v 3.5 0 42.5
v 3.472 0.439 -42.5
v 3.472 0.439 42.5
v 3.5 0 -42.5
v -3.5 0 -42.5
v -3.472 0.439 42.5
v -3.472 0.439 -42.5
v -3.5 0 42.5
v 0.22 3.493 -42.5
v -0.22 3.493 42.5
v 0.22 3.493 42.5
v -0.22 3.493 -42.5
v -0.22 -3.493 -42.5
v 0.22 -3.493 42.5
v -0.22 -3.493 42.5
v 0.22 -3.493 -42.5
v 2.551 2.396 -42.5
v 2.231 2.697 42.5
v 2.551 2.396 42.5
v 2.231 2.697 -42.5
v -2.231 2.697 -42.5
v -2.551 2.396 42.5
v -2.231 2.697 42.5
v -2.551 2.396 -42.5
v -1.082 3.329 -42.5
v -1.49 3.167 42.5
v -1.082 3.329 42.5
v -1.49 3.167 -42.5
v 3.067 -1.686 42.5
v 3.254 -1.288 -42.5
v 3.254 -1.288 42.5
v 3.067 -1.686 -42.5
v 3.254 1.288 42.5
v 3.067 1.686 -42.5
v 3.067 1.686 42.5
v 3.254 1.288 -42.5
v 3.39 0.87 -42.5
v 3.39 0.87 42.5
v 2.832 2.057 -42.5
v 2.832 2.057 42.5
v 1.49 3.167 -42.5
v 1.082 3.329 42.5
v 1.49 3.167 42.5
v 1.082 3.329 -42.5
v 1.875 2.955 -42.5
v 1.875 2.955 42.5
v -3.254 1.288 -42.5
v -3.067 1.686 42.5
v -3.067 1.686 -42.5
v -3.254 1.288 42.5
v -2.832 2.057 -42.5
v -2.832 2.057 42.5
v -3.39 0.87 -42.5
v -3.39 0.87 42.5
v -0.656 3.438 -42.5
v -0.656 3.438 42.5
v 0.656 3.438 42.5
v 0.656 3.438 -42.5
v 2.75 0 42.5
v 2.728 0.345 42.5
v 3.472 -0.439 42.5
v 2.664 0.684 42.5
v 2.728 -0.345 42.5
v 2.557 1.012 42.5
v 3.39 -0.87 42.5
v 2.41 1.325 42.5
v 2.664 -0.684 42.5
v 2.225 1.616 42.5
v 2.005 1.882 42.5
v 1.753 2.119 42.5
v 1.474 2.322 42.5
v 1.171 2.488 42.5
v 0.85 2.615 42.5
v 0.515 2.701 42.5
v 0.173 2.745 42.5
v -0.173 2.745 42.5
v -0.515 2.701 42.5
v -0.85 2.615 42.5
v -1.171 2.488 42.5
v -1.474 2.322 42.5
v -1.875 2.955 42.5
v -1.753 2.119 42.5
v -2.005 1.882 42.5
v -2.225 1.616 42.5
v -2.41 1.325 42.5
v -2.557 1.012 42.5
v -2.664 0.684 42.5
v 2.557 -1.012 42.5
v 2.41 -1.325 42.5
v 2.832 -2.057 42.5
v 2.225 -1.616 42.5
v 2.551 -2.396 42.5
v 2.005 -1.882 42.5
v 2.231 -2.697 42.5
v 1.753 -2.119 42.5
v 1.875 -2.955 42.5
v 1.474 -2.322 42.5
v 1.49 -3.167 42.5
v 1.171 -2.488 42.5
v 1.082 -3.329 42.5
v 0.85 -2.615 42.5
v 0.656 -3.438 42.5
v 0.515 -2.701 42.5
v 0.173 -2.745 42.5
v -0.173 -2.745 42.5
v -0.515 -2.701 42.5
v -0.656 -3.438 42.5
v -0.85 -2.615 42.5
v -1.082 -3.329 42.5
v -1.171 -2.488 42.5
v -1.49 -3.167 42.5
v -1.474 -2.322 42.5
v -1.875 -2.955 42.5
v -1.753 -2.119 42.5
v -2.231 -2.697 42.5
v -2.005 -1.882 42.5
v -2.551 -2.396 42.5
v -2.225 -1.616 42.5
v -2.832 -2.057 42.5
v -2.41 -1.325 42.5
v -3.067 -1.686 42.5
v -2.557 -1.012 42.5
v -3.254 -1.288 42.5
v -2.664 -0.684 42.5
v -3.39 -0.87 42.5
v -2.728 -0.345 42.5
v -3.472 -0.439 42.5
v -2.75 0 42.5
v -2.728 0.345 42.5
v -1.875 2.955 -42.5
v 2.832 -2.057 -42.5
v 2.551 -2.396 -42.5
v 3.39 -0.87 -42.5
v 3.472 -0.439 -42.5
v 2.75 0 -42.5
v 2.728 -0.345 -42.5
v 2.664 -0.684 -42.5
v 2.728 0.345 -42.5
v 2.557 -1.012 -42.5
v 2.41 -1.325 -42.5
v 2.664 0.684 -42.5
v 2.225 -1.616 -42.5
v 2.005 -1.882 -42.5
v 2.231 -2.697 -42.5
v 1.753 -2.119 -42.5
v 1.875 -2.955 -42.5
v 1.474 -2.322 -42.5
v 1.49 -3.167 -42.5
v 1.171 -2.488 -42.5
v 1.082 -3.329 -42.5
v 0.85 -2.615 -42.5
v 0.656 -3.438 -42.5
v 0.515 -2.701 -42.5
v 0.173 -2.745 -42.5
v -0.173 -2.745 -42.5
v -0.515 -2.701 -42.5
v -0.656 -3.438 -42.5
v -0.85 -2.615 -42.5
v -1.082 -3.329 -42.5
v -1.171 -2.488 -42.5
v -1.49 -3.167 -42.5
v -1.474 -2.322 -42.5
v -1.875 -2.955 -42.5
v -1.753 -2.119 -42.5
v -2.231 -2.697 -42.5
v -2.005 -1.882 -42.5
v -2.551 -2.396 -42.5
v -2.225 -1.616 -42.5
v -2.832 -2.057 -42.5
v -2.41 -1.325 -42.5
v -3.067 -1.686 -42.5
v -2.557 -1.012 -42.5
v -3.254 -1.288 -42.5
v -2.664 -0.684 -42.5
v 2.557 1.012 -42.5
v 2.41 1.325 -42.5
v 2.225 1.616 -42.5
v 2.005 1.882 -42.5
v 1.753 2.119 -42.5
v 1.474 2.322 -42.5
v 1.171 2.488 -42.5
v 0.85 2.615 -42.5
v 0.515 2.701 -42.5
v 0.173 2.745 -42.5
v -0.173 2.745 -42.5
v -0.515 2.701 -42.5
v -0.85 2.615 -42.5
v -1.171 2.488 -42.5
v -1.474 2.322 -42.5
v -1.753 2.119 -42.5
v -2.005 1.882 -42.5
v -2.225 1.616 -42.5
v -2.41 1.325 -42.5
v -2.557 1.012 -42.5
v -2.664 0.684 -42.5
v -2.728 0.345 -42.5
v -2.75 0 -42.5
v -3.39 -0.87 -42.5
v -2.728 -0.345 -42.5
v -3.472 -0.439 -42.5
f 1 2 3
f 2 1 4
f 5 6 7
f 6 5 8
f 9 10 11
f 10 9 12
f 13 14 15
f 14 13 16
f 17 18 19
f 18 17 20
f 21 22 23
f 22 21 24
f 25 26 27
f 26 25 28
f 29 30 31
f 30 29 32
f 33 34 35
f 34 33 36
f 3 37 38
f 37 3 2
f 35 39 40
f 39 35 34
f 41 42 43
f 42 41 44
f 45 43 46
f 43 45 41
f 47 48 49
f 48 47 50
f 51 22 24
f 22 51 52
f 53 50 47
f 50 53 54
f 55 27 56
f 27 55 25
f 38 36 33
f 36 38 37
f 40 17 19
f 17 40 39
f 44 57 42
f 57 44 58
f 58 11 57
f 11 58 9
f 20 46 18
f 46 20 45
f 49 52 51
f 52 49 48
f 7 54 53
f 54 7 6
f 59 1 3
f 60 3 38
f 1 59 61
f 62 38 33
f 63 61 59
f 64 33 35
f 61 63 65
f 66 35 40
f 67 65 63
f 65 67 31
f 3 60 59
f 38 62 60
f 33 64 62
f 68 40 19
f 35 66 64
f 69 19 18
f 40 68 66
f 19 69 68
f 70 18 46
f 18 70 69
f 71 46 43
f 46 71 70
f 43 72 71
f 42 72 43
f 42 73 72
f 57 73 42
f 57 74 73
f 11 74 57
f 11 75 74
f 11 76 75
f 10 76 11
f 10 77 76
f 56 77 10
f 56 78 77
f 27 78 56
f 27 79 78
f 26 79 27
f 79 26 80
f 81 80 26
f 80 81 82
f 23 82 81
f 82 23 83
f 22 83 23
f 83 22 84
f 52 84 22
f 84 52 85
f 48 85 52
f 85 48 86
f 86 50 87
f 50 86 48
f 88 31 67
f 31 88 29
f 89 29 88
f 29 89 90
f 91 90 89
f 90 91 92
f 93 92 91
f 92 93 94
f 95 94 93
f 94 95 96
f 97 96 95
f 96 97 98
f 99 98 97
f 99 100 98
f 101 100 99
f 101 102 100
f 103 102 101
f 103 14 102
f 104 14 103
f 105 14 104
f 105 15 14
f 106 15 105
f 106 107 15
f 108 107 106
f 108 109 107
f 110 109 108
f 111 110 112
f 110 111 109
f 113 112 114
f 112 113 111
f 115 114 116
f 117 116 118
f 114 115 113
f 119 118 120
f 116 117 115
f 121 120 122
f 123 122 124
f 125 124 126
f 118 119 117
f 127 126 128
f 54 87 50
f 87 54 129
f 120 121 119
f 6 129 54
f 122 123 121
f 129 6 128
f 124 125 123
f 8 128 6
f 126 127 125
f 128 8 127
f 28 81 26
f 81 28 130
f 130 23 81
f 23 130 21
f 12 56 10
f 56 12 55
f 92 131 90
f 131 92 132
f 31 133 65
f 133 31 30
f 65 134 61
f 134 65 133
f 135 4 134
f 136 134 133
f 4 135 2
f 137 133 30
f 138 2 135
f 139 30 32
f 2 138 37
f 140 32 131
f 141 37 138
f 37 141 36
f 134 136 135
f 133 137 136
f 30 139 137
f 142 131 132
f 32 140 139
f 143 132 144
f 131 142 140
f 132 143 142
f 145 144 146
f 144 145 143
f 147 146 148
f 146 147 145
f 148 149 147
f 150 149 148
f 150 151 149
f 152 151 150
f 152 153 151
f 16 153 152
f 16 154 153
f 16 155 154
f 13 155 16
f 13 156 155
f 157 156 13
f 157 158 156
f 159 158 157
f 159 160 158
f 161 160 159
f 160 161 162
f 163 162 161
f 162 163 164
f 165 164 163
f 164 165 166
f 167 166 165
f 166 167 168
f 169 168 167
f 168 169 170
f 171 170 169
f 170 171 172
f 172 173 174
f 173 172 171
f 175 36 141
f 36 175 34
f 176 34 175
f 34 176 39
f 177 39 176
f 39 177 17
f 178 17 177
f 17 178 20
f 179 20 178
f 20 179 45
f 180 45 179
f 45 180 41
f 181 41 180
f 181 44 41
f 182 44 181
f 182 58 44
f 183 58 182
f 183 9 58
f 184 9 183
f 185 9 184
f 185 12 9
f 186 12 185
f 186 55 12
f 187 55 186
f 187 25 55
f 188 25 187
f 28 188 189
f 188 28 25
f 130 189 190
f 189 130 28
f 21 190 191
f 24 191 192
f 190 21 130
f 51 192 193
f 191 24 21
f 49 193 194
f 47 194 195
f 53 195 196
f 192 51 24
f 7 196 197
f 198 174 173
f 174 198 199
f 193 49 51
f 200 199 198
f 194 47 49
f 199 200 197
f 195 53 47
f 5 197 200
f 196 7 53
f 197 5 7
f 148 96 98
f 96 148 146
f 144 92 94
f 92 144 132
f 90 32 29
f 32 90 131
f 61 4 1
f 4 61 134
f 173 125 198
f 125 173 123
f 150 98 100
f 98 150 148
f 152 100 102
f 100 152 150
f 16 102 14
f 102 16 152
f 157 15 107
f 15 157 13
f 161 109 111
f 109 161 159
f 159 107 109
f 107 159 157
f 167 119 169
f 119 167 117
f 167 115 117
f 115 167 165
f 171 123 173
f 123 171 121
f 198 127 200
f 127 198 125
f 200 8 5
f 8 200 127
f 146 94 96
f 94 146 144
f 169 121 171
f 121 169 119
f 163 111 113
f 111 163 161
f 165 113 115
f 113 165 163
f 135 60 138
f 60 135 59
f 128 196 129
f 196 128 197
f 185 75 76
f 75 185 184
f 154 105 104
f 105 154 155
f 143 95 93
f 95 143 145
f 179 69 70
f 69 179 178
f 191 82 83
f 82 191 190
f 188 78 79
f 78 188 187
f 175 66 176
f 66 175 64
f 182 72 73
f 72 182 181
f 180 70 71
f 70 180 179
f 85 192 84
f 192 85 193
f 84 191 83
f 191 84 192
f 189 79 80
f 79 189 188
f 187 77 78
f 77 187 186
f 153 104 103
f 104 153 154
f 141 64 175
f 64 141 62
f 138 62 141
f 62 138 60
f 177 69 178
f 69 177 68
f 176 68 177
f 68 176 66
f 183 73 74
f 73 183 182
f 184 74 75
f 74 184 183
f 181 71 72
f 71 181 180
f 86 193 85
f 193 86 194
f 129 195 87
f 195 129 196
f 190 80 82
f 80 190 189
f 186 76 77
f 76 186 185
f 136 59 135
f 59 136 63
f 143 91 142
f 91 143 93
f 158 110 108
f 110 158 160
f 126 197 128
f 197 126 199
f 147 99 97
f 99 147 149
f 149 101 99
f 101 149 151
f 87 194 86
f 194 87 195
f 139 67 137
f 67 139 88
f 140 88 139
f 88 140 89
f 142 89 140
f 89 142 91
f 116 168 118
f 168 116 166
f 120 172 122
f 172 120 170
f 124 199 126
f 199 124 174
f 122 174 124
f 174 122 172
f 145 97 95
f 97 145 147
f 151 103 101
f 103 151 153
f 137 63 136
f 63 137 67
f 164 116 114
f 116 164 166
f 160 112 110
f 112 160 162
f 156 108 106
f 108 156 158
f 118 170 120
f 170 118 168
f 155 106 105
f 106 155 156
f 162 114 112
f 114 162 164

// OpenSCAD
$fn = 50;


difference() {
	union() {
		translate(v = [0, 0, -42.5000000000]) {
			cylinder(h = 85, r = 3.5000000000);
		}
	}
	union() {
		translate(v = [0, 0, -100.0000000000]) {
			cylinder(h = 200, r = 2.7500000000);
		}
	}
}
